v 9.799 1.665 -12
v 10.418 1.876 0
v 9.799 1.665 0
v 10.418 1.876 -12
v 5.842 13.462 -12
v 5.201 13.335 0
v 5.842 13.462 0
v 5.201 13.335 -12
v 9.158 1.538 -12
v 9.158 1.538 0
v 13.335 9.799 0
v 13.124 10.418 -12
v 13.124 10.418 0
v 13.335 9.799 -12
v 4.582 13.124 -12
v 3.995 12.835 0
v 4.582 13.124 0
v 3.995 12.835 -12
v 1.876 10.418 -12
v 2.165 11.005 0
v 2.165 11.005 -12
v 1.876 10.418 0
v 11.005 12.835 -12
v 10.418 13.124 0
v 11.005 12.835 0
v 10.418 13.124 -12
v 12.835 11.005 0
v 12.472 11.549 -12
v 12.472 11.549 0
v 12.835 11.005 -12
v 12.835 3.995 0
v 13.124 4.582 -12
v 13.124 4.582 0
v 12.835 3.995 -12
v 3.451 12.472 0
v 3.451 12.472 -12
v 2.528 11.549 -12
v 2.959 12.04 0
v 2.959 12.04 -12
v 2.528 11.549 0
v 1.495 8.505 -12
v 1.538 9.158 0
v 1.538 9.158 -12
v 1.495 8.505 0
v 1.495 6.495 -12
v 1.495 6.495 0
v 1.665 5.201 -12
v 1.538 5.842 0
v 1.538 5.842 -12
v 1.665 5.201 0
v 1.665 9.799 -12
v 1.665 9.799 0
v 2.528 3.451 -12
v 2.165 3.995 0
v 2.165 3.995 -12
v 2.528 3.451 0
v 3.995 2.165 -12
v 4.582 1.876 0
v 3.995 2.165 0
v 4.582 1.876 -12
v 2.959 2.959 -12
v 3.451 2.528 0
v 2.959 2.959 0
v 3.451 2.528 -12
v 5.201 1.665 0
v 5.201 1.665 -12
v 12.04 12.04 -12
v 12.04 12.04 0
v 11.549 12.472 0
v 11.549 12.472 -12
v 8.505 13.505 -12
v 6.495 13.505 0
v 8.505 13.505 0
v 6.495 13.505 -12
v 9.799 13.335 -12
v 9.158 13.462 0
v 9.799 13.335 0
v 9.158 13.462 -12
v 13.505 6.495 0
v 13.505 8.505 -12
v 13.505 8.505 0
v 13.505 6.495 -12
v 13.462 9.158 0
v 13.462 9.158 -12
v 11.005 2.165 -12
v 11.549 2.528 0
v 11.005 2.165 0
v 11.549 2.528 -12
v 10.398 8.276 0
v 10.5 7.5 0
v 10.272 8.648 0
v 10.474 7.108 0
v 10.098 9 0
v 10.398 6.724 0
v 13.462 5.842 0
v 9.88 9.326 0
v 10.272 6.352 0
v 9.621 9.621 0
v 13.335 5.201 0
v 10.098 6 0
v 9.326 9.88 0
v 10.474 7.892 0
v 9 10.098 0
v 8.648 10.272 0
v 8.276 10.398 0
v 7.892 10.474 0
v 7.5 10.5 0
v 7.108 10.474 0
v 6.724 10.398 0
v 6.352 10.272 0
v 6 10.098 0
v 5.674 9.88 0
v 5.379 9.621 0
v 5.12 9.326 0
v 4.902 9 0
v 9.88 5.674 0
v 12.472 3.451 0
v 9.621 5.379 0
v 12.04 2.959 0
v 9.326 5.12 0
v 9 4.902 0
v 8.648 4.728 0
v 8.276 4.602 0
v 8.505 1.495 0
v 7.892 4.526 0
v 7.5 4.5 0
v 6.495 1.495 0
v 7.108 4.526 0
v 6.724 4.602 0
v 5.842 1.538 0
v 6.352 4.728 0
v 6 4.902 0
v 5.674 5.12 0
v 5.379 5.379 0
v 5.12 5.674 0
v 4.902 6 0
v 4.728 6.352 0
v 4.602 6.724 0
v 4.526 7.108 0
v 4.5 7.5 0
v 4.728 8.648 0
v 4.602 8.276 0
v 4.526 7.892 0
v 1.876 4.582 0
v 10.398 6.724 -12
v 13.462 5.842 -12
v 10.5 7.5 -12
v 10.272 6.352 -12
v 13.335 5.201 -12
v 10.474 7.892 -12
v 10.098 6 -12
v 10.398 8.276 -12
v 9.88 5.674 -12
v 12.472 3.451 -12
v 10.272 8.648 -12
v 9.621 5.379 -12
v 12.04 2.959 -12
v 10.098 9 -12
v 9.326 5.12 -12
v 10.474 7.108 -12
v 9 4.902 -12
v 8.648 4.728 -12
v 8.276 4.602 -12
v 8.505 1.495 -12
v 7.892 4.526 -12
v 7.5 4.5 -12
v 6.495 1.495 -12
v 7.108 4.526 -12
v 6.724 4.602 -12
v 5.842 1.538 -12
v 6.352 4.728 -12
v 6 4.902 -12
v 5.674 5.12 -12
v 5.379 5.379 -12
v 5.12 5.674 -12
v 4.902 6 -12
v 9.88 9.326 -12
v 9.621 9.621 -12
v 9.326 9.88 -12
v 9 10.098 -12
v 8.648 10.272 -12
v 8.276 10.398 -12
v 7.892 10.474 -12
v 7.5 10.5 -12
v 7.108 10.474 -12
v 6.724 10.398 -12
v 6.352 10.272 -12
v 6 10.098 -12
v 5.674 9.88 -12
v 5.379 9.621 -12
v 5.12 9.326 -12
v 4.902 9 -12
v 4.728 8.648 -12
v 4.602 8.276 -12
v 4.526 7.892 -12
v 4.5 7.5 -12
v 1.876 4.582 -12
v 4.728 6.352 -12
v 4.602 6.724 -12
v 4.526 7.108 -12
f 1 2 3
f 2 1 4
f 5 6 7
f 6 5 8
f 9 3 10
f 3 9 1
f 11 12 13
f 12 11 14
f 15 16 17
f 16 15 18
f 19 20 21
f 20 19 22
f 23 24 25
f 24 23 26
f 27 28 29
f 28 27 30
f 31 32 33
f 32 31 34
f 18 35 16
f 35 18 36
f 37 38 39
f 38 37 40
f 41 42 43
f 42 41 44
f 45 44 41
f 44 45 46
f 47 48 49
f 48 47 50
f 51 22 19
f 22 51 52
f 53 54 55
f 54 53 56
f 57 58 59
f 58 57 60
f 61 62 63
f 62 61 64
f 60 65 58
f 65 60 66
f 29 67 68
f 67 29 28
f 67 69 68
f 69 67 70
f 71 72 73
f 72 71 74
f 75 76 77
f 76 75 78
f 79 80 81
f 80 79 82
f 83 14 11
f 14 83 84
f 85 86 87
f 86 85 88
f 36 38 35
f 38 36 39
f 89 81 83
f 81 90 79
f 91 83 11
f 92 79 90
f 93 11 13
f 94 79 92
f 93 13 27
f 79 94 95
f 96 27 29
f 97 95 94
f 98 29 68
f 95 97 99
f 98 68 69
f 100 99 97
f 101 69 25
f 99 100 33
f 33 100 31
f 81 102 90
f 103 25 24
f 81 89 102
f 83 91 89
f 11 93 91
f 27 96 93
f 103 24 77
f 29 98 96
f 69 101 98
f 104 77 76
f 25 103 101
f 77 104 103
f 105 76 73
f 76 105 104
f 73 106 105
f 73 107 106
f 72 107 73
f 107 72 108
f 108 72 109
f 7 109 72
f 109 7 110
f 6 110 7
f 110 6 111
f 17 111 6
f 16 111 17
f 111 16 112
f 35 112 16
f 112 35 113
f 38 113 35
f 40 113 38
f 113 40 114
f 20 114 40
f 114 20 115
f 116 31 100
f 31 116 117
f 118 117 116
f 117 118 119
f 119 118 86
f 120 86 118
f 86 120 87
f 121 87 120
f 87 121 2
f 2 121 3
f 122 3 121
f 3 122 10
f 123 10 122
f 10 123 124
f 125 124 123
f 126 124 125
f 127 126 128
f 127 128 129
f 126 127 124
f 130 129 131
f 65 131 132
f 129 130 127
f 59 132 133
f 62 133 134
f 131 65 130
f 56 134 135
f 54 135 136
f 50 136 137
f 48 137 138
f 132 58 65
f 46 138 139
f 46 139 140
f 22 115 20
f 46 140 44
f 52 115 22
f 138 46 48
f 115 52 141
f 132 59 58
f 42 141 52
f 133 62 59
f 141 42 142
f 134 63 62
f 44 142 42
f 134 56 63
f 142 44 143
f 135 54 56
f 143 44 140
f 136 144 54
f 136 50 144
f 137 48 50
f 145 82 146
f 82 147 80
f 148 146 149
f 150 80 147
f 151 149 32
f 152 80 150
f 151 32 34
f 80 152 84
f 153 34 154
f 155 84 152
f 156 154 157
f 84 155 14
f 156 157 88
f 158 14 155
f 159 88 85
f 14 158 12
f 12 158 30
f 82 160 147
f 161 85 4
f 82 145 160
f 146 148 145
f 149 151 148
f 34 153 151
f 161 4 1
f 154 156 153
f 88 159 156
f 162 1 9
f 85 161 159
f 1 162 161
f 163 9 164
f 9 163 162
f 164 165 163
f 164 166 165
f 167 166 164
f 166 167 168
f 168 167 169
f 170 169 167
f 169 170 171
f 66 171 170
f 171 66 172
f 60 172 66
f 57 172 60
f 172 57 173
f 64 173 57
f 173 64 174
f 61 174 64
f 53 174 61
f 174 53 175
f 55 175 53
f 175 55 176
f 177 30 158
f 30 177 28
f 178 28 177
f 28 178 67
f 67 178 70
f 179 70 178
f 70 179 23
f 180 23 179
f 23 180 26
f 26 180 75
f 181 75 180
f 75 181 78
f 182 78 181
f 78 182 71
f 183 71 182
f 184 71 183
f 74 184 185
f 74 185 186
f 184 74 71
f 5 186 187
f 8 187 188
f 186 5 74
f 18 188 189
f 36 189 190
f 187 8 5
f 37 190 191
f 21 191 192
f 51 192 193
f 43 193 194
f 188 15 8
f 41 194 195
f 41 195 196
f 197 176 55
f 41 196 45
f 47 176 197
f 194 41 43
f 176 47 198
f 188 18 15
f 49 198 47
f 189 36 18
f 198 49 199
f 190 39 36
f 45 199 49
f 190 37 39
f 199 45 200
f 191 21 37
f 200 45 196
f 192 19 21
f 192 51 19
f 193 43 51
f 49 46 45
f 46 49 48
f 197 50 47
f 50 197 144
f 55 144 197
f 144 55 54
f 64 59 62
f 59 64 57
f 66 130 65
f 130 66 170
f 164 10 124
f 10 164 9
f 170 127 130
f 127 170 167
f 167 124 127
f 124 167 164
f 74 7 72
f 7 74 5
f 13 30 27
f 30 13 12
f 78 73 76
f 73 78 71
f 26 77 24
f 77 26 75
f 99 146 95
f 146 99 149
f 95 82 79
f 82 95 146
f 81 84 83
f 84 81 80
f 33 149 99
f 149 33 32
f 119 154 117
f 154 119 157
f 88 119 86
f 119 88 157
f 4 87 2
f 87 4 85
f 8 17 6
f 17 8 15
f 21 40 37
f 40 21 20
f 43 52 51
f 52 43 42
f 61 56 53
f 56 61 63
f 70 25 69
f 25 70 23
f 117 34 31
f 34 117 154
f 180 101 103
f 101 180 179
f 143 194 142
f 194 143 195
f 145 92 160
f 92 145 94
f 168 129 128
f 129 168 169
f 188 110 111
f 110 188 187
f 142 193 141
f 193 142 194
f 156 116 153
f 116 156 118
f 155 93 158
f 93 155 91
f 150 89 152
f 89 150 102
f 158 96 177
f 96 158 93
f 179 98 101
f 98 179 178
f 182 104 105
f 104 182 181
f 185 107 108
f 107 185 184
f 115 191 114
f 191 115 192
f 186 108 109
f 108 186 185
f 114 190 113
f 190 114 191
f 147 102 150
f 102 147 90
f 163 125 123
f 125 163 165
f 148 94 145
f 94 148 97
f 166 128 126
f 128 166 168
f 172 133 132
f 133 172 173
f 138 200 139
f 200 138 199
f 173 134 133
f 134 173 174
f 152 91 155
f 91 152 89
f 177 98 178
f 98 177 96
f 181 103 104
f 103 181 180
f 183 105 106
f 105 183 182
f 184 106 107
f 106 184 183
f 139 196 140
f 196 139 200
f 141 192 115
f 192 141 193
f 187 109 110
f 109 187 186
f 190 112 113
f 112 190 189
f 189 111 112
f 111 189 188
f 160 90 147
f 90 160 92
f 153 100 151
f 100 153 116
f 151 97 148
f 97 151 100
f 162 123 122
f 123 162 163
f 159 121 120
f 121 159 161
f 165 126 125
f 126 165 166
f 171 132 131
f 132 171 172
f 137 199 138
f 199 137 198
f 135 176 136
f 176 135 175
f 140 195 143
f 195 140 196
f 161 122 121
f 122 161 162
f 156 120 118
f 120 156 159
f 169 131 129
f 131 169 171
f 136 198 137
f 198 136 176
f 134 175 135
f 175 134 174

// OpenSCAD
// Generated by SolidPython 1.1.3 on 2022-09-14 11:03:32
$fn = 48;


difference() {
	union() {
		color(alpha = 1.0000000000, c = "Gold") {
			translate(v = [7.5000000000, 7.5000000000, 0]) {
				rotate(a = [0, 0, 0]) {
					translate(v = [0, 0, -12]) {
						linear_extrude(height = 12) {
							offset(r = 5) {
								square(center = true, size = [2.0100000000, 2.0100000000]);
							}
						}
					}
				}
			}
		}
	}
	union() {
		color(alpha = 1.0000000000, c = "Gold") {
			translate(v = [7.5000000000, 7.5000000000, 0]) {
				rotate(a = [0, 0, 0]) {
					translate(v = [0, 0, -250]) {
						cylinder(h = 500, r = 3.0000000000);
					}
				}
			}
		}
	}
}
/***********************************************
*********      SolidPython code:      **********
************************************************
 
import subprocess

from solid.objects import *
from solid import scad_render_to_file, scad_render

import os

##################################################################################################################################################
##################################################################################################################################################
##################################################################################################################################################
##################################################################################################################################################
######  DIMENSION STUFF
##################################################################################################################################################
##################################################################################################################################################
##################################################################################################################################################
##################################################################################################################################################


mode = "3DPR"
#mode = "LAZE"
#mode = "TURE"
#mode = ""


######  Countersunk
countersunkM = []
WIDTH = 0
DEPTH = 1
countersunkM1width = 0; countersunkM1depth = 0; countersunkM2width = 0; countersunkM2depth = 0
countersunkM3width = 0
countersunkM3depth = 0
countersunkM4width = 0
countersunkM4depth = 0
countersunkM5width = 0
countersunkM5depth = 0
countersunkM6width = 0
countersunkM6depth = 0

######  Holes
holeM = []
holeM1 = 0
holeM2 = 0
holeM3 = 0
holeM4 = 0
holeM5 = 0
holeM6 = 0

######  Nuts
nutM = []
NUTWIDTH = 0
NUTDEPTH = 1
nutM1width = 0
nutM1depth = 0
nutM2width = 0
nutM2depth = 0
nutM3width = 0
nutM3depth = 0
nutM4width = 0
nutM4depth = 0
nutM5width = 0
nutM5depth = 0
nutM6width = 0
nutM6depth = 0

######  OOEB
ooebPinWidth = 0
ooebPinWidthWide = 0


######  Colors
colDefault = "Gold"

colOOEBbase = colDefault

colLEDRed = "red"
colWire = "gray"
    ######  Resistor
colRes = list()
colResistor = "beige"

colResBlack = "black"
colRes.append(colResBlack)
colResBrown = "brown"
colRes.append(colResBrown)
colResRed = "red"
colRes.append(colResRed)
colResOrange = "orange"
colRes.append(colResOrange)
colResYellow = "yellow"
colRes.append(colResYellow)
colResGreen = "green"
colRes.append(colResGreen)
colResBlue = "blue"
colRes.append(colResBlue)
colResPurple = "purple"
colRes.append(colResPurple)
colResGray = "gray"
colRes.append(colResGray)
colResWhite = "white"
colRes.append(colResWhite)





def changeMode(m="3DPR"):
    #print("####################################################      CHANGING MODES TO: " + m)
    global mode
    mode = m
    ######  Countersunk
    global countersunkM, countersunkM1width, countersunkM1depth, countersunkM2width, countersunkM2depth, countersunkM3width, countersunkM3depth, countersunkM4width, countersunkM4depth, countersunkM5width, countersunkM5depth, countersunkM6width, countersunkM6depth
    countersunkM = []
    countersunkM.append([0,0])
    countersunkM1width = 0 if mode== "3DPR" else 0
    countersunkM1depth = 0 if mode== "3DPR" else 0
    countersunkM.append([countersunkM1width,countersunkM1depth])
    countersunkM2width = 0 if mode== "3DPR" else 0
    countersunkM2depth = 0 if mode== "3DPR" else 0
    countersunkM.append([countersunkM2width,countersunkM2depth])
    countersunkM3width = 5.5/2+0.6 if mode== "3DPR" else 5.5/2
    countersunkM3depth = 1.7 if mode== "3DPR" else 1.7
    countersunkM.append([countersunkM3width,countersunkM3depth])
    countersunkM4width = 0 if mode== "3DPR" else 0
    countersunkM4depth = 0 if mode== "3DPR" else 0
    countersunkM.append([countersunkM4width,countersunkM4depth])
    countersunkM5width = 0 if mode== "3DPR" else 0
    countersunkM5depth = 0 if mode== "3DPR" else 0
    countersunkM.append([countersunkM5width,countersunkM5depth])
    countersunkM6width = 0 if mode== "3DPR" else 0
    countersunkM6depth = 0 if mode== "3DPR" else 0
    countersunkM.append([countersunkM6width,countersunkM6depth])
    ######  Holes
    global holeM, holeM1, holeM2, holeM3, holeM4, holeM5, holeM6, holeM7, holeM8
    holeM = []
    holeM1 = 1.2/2 if mode== "3DPR" else 1/2
    holeM2 = 2.3/2 if mode== "3DPR" else 2/2
    holeM3 = 3.4/2 if mode== "3DPR" else 3/2
    holeM4 = 4.4/2 if mode== "3DPR" else 4/2
    holeM5 = 5.4/2 if mode== "3DPR" else 5/2
    holeM6 = 6.5/2 if mode== "3DPR" else 6/2
    holeM7 = 7.5/2 if mode== "3DPR" else 7/2
    holeM8 = 8.6/2 if mode== "3DPR" else 8/2
    holeM.append(0)
    holeM.append(holeM1)
    holeM.append(holeM2)
    holeM.append(holeM3)
    holeM.append(holeM4)
    holeM.append(holeM5)
    holeM.append(holeM6)
    holeM.append(holeM7)
    holeM.append(holeM8)
    #####  Nuts
    global nutM, nutM1width, nutM1depth, nutM2width, nutM2depth, nutM3width, nutM3depth, nutM4width, nutM4depth, nutM5width, nutM5depth, nutM6width, nutM6depth
    nutM = []
    nutM.append([0,0]) 
    #M1 Nut
    nutM1width = 0
    nutM1depth = 0
    nutM.append([nutM1width,nutM1depth])    
    #M2 Nut
    nutM2width = 0
    nutM2depth = 0
    nutM.append([nutM2width,nutM2depth])    
    #M3 Nut
    nutM3width = 6.05 if mode== "3DPR" else 5.5
    nutM3depth = 2.5 if mode== "3DPR" else 2.5
    nutM.append([nutM3width,nutM3depth])    
    #M4 Nut
    nutM4width = 0
    nutM4depth = 0
    nutM.append([nutM4width,nutM4depth])    
    #M5 Nut
    nutM5width = 0
    nutM5depth = 0
    nutM.append([nutM5width,nutM5depth])    
    #M6 Nut
    nutM6width = 11 if mode== "3DPR" else 10
    nutM6depth = 5 if mode== "3DPR" else 5
    nutM.append([nutM6width,nutM6depth])    

    ######  OOEB
    global ooebPinWidth,  ooebPinWidthWide

    ooebPinWidth = 0.6
    if(mode=="3DPR" or mode=="LAZE"):
        ooebPinWidth = 0.6 + 0.6
    ooebPinWidthWide = 1.2
    if(mode=="3DPR" or mode=="LAZE"):
        ooebPinWidthWide = 1.2 + 0.6


changeMode()


""""    
holeM12D = s=="3DPR" ? 1.4/2 : 1.2/2;
holeM16D = s=="3DPR" ? 1.8/2 : 1.6/2;
holeM2 = s=="3DPR" ? 2.3/2 : 2/2;
holeM25D = s=="3DPR" ? 2.8/2 : 2.5/2;
holeM27D = s=="3DPR" ? 3.1/2 : 2.7/2;    
holeM3 = s=="3DPR" ? 3.4/2 : 3/2;
holeM35D = s=="3DPR" ? 3.9/2 : 35/2;
holeM4 = s=="3DPR" ? 4.4/2 : 4/2;
holeM5 = s=="3DPR" ? 5.4/2 : 5/2;
holeM6 = s=="3DPR" ? 6.5/2 : 6/2;
holeM6Minus = s=="3DPR" ? 5.8/2 : 5.9/2;
holeM7 = s=="3DPR" ? 7.5/2 : 7/2;
holeM8 = s=="3DPR" ? 8.6/2 : 8/2;
holeM9 = s=="3DPR" ? 9.6/2 : 9/2;
holeM10 = s=="3DPR" ? 10.6/2 : 10/2;
holeM11 = s=="3DPR" ? 11.6/2 : 11/2;
holeM12 = s=="3DPR" ? 12.6/2 : 12/2;
holeM13 = s=="3DPR" ? 13.6/2 : 13/2;
holeM14 = s=="3DPR" ? 14.6/2 : 14/2;
holeM15 = s=="3DPR" ? 15.6/2 : 15/2;
holeM16 = s=="3DPR" ? 16.6/2 : 16/2;
holeM17 = s=="3DPR" ? 17.6/2 : 17/2;
holeM18 = s=="3DPR" ? 18.6/2 : 18/2;
holeM19 = s=="3DPR" ? 19.6/2 : 19/2;
holeM20 = s=="3DPR" ? 20.6/2 : 20/2;
"""

##################################################################################################################################################
##################################################################################################################################################
##################################################################################################################################################
##################################################################################################################################################
######  REGULAR STUFF
##################################################################################################################################################
##################################################################################################################################################
##################################################################################################################################################
##################################################################################################################################################


def setMode(mode="3DPR"):
    changeMode(mode)

def getMode():
    return mode



def saveToScad(fileName, parts):
    dir =  os.path.dirname(os.path.abspath(fileName))
    Path(dir).mkdir(parents=True, exist_ok=True)
    file_out = scad_render_to_file(parts, fileName, file_header=f'$fn = 48;')


def saveToDxf(fileIn, fileOut=""):
    if fileOut == "":
        fileOut = fileIn.replace(".scad",".dxf")
    saveToFile(fileIn, fileOut)
    
def saveToPng(fileIn, fileOut="",extra="--render"):
    if fileOut == "":
        fileOut = fileIn.replace(".scad",".png")
    saveToFile(fileIn, fileOut)

def saveToStl(fileIn, fileOut=""):
    if fileOut == "":
        fileOut = fileIn.replace(".scad",".stl")
    saveToFile(fileIn, fileOut)
    
def saveToSvg(fileIn, fileOut=""):
    if fileOut == "":
        fileOut = fileIn.replace(".scad",".svg")
    saveToFile(fileIn, fileOut)

def saveToFile(fileIn, fileOut,extra=""):
    extra = extra + " --colorscheme Tomorrow"

    launchStr = 'openscad -o "' + fileOut + '"' + extra + ' "' + fileIn + '"'
    print("            saveToFile launch string: " + launchStr)
    subprocess.run(launchStr)
    x=0



def insert(item,pos=[None,None,None],x=0,y=0,z=0,ex=0,size=[None,None,None],length=0,rot=[None,None,None],rotX=0,rotY=0,rotZ=0,width=0,height=0,depth=100,rad=0,rad2=0,color=colDefault,alpha=1,OOwidth=0,OOheight=0,holes=True,negative=True, name=""):
    return OPSCInsert(item,pos,x,y,z,ex,size,length,rot,rotX,rotY,rotZ,width,height,depth,rad,rad2,color,alpha,OOwidth,OOheight,holes,negative,name)


def OPSCInsert(item,pos=[None,None,None],x=0,y=0,z=0,ex=0,size=[None,None,None],length=0,rot=[None,None,None],rotX=0,rotY=0,rotZ=0,width=0,height=0,depth=100,rad=0,rad2=0,col=colDefault,alpha=1,OOwidth=0,OOheight=0,holes=True,negative=True, name=""):
    
    """
        color(color,alpha){
            translate([x,y,z]){
                    rotate([rotX,rotY,rotZ]){
    """
    returnValue = ""

    #print(pos)

    if pos[0] != None:
        x=pos[0]
        y=pos[1]
        z=pos[2]
    if rot[0] != None:
        rotX=rot[0]
        rotY=rot[1]
        rotZ=rot[2]
    
    returnValue = color(col)(translate((x,y,z))(
                            rotate((rotX,rotY,rotZ))(
                                OPSCInsertIf(item,pos,x,y,z,ex,size,length,rot,rotX,rotY,rotZ,width,height,depth,rad,rad2,col,alpha,OOwidth,OOheight,holes,negative,name)
                            )
                        ))
                
    

    return returnValue

def OPSCInsertIf(item,pos=[None,None,None],x=0,y=0,z=0,ex=0,size=[None,None,None],length=0,rot=[None,None,None],rotX=0,rotY=0,rotZ=0,width=0,height=0,depth=100,rad=0,rad2=0,color=colDefault,alpha=1,OOwidth=0,OOheight=0,holes=True,negative=True, name=""):
    returnValue = cube([10,10,10])

    if size[0] != None:
        width=size[0]
        height=size[1]
        depth=size[2]

    #print("    OPSCInsert item:" + str(item) + " at:[" + str(x) + "," + str(y) + "," + str(z) + "] size: [" + str(width) + "," + str(height) + "," + str(depth) + "]")

    if(item=="cube"):
        returnValue =  translate([0,0,-depth/2])(cube([width,height,depth],center=True))
    elif(item=="cylinder"):        
        returnValue = translate([0,0,-depth/2])(cylinder(r=rad,h=depth,center=True))
    elif(item=="sphere"):        
        returnValue = translate([0,0,-rad])(sphere(r=rad))
    elif(item=="plane"):
        if depth == 100:
            returnValue = insert("cube",size=[1000,1000,0.1],color=color)            
        else:
            returnValue = insert("cube",size=[1000,1000,depth],color=color)                        
    elif(item=="cubeRounded"):
        if(rad == 0):
                            rad = 5
        returnValue =  translate([0,0,-depth])(
                        linear_extrude(height=depth)(                        
                            offset(r=rad)(
                                square((width-rad*2+.01,height-rad*2+.01),center=True)
                                )
                            )
        )
    ######  Countersunk
    elif(item == "countersunkM1" or item == "csM1" ):
        returnValue = OSPCgetCountersunk(rad=1)
    elif(item == "countersunkM2" or item == "csM2" ):
        returnValue = OSPCgetCountersunk(rad=2)
    elif(item == "countersunkM3" or item == "csM3" ):
        returnValue = OSPCgetCountersunk(rad=3)
    elif(item == "countersunkM4" or item == "csM4" ):
        returnValue = OSPCgetCountersunk(rad=4)
    elif(item == "countersunkM5" or item == "csM5" ):
        returnValue = OSPCgetCountersunk(rad=5)
    elif(item == "countersunkM6" or item == "csM6" ):
        returnValue = OSPCgetCountersunk(rad=6)
    elif(item == "countersunk" or item == "cs"):
        returnValue = OSPCgetCountersunk(rad=rad)


    ######  Holes    
    elif(item == "holeM1"):
        returnValue = OSPCgetHole(rad=1)
    elif(item == "holeM2"):
        returnValue = OSPCgetHole(rad=2)
    elif(item == "holeM3"):
        returnValue = OSPCgetHole(rad=3)
    elif(item == "holeM4"):
        returnValue = OSPCgetHole(rad=4)
    elif(item == "holeM5"):
        returnValue = OSPCgetHole(rad=5)
    elif(item == "holeM6"):
        returnValue = OSPCgetHole(rad=6)
    elif(item == "hole"):
        returnValue = OSPCgetHole(rad=rad)

    ######  Nuts
    elif(item == "nutM1"):
        returnValue = OSPCgetNut(rad=1,depth=depth)
    elif(item == "nutM2"):
        returnValue = OSPCgetNut(rad=2,depth=depth)
    elif(item == "nutM3"):
        returnValue = OSPCgetNut(rad=3,depth=depth)
    elif(item == "nutM4"):
        returnValue = OSPCgetNut(rad=4,depth=depth)
    elif(item == "nutM5"):
        returnValue = OSPCgetNut(rad=5,depth=depth)
    elif(item == "nutM6"):
        returnValue = OSPCgetNut(rad=6,depth=depth)
    elif(item == "nut"):
        returnValue = OSPCgetNut(rad=rad,depth=depth)
    return returnValue

                

def OSPCgetHole(rad):
    return translate([0,0,-250])(cylinder(r=holeM[rad],h=500))

def OSPCgetNut(rad,depth):
    depth = nutM[rad][NUTDEPTH] if depth==100 else depth
    returnValue = OPSChexagon(nutM[rad][NUTWIDTH],depth=depth)
    return returnValue

def OSPCgetCountersunk(rad):
    depth=countersunkM[rad][DEPTH]
    returnValue = translate([0,0,-depth])(cylinder(h=depth,r2=countersunkM[rad][WIDTH],r1=holeM[rad]))
    return returnValue

def OPSChexagon(width,depth):
    cutter = item()
    wid=width*2
    cutter.addPos(insert("cube",pos=[wid/2+width/2,0,0],size=[wid,wid,depth]))
    cutter.addPos(insert("cube",pos=[-wid/2-width/2,0,0],size=[wid,wid,depth]))

    cut = cutter.getPart()
    #print(depth)
    returnValue = difference()(
        translate([0,0,-depth/2])(cube([wid,wid,depth],center=True)),
        cut,
        rotate([0,0,60])(cut),
        rotate([0,0,-60])(cut)
    )

    return returnValue




class item:

    def __init__(self):
        self.posItems=list()
        self.negItems=list()

    def isEmpty(self):        
        testString = scad_render(self.getPart())
        #print("test String length: " + str(len(testString)))
        returnValue = False
        if len(testString) == 270:            
            returnValue = True
        return returnValue

    def addPos(self,part):
        self.posItems.append(part)
    def addNeg(self,part):
        self.negItems.append(part)

    def getPart(self):
        returnValue = difference()(
            union()(self.posItems),
            union()(self.negItems)
        )
        return returnValue

    def getLaser(self,start=0,layers=1,thickness=-3,tileDif=200):
        rv= []

        for x in range(layers):
            rv.append(translate([0,x*tileDif,0])(
                    projection()(
                        intersection()(
                            insert("plane",z=start+x*thickness),
                            self.getPart()
                        )
                    )
            )
            )
        return union()(rv)

    def getSplit(self,start=0,depth=6,tileDif=200):
        rv= []

        rv.append(translate([0,0,0])(
            intersection()(
                insert("cube",size=[100,100,depth],z=start),
                self.getPart()
            )
        )
        )

        rv.append(translate([0,tileDif,depth])(
            intersection()(
                insert("cube",size=[100,100,depth],z=start-depth),
                self.getPart()
            )
        )
        )        
        return union()(rv)


 
 
************************************************/
